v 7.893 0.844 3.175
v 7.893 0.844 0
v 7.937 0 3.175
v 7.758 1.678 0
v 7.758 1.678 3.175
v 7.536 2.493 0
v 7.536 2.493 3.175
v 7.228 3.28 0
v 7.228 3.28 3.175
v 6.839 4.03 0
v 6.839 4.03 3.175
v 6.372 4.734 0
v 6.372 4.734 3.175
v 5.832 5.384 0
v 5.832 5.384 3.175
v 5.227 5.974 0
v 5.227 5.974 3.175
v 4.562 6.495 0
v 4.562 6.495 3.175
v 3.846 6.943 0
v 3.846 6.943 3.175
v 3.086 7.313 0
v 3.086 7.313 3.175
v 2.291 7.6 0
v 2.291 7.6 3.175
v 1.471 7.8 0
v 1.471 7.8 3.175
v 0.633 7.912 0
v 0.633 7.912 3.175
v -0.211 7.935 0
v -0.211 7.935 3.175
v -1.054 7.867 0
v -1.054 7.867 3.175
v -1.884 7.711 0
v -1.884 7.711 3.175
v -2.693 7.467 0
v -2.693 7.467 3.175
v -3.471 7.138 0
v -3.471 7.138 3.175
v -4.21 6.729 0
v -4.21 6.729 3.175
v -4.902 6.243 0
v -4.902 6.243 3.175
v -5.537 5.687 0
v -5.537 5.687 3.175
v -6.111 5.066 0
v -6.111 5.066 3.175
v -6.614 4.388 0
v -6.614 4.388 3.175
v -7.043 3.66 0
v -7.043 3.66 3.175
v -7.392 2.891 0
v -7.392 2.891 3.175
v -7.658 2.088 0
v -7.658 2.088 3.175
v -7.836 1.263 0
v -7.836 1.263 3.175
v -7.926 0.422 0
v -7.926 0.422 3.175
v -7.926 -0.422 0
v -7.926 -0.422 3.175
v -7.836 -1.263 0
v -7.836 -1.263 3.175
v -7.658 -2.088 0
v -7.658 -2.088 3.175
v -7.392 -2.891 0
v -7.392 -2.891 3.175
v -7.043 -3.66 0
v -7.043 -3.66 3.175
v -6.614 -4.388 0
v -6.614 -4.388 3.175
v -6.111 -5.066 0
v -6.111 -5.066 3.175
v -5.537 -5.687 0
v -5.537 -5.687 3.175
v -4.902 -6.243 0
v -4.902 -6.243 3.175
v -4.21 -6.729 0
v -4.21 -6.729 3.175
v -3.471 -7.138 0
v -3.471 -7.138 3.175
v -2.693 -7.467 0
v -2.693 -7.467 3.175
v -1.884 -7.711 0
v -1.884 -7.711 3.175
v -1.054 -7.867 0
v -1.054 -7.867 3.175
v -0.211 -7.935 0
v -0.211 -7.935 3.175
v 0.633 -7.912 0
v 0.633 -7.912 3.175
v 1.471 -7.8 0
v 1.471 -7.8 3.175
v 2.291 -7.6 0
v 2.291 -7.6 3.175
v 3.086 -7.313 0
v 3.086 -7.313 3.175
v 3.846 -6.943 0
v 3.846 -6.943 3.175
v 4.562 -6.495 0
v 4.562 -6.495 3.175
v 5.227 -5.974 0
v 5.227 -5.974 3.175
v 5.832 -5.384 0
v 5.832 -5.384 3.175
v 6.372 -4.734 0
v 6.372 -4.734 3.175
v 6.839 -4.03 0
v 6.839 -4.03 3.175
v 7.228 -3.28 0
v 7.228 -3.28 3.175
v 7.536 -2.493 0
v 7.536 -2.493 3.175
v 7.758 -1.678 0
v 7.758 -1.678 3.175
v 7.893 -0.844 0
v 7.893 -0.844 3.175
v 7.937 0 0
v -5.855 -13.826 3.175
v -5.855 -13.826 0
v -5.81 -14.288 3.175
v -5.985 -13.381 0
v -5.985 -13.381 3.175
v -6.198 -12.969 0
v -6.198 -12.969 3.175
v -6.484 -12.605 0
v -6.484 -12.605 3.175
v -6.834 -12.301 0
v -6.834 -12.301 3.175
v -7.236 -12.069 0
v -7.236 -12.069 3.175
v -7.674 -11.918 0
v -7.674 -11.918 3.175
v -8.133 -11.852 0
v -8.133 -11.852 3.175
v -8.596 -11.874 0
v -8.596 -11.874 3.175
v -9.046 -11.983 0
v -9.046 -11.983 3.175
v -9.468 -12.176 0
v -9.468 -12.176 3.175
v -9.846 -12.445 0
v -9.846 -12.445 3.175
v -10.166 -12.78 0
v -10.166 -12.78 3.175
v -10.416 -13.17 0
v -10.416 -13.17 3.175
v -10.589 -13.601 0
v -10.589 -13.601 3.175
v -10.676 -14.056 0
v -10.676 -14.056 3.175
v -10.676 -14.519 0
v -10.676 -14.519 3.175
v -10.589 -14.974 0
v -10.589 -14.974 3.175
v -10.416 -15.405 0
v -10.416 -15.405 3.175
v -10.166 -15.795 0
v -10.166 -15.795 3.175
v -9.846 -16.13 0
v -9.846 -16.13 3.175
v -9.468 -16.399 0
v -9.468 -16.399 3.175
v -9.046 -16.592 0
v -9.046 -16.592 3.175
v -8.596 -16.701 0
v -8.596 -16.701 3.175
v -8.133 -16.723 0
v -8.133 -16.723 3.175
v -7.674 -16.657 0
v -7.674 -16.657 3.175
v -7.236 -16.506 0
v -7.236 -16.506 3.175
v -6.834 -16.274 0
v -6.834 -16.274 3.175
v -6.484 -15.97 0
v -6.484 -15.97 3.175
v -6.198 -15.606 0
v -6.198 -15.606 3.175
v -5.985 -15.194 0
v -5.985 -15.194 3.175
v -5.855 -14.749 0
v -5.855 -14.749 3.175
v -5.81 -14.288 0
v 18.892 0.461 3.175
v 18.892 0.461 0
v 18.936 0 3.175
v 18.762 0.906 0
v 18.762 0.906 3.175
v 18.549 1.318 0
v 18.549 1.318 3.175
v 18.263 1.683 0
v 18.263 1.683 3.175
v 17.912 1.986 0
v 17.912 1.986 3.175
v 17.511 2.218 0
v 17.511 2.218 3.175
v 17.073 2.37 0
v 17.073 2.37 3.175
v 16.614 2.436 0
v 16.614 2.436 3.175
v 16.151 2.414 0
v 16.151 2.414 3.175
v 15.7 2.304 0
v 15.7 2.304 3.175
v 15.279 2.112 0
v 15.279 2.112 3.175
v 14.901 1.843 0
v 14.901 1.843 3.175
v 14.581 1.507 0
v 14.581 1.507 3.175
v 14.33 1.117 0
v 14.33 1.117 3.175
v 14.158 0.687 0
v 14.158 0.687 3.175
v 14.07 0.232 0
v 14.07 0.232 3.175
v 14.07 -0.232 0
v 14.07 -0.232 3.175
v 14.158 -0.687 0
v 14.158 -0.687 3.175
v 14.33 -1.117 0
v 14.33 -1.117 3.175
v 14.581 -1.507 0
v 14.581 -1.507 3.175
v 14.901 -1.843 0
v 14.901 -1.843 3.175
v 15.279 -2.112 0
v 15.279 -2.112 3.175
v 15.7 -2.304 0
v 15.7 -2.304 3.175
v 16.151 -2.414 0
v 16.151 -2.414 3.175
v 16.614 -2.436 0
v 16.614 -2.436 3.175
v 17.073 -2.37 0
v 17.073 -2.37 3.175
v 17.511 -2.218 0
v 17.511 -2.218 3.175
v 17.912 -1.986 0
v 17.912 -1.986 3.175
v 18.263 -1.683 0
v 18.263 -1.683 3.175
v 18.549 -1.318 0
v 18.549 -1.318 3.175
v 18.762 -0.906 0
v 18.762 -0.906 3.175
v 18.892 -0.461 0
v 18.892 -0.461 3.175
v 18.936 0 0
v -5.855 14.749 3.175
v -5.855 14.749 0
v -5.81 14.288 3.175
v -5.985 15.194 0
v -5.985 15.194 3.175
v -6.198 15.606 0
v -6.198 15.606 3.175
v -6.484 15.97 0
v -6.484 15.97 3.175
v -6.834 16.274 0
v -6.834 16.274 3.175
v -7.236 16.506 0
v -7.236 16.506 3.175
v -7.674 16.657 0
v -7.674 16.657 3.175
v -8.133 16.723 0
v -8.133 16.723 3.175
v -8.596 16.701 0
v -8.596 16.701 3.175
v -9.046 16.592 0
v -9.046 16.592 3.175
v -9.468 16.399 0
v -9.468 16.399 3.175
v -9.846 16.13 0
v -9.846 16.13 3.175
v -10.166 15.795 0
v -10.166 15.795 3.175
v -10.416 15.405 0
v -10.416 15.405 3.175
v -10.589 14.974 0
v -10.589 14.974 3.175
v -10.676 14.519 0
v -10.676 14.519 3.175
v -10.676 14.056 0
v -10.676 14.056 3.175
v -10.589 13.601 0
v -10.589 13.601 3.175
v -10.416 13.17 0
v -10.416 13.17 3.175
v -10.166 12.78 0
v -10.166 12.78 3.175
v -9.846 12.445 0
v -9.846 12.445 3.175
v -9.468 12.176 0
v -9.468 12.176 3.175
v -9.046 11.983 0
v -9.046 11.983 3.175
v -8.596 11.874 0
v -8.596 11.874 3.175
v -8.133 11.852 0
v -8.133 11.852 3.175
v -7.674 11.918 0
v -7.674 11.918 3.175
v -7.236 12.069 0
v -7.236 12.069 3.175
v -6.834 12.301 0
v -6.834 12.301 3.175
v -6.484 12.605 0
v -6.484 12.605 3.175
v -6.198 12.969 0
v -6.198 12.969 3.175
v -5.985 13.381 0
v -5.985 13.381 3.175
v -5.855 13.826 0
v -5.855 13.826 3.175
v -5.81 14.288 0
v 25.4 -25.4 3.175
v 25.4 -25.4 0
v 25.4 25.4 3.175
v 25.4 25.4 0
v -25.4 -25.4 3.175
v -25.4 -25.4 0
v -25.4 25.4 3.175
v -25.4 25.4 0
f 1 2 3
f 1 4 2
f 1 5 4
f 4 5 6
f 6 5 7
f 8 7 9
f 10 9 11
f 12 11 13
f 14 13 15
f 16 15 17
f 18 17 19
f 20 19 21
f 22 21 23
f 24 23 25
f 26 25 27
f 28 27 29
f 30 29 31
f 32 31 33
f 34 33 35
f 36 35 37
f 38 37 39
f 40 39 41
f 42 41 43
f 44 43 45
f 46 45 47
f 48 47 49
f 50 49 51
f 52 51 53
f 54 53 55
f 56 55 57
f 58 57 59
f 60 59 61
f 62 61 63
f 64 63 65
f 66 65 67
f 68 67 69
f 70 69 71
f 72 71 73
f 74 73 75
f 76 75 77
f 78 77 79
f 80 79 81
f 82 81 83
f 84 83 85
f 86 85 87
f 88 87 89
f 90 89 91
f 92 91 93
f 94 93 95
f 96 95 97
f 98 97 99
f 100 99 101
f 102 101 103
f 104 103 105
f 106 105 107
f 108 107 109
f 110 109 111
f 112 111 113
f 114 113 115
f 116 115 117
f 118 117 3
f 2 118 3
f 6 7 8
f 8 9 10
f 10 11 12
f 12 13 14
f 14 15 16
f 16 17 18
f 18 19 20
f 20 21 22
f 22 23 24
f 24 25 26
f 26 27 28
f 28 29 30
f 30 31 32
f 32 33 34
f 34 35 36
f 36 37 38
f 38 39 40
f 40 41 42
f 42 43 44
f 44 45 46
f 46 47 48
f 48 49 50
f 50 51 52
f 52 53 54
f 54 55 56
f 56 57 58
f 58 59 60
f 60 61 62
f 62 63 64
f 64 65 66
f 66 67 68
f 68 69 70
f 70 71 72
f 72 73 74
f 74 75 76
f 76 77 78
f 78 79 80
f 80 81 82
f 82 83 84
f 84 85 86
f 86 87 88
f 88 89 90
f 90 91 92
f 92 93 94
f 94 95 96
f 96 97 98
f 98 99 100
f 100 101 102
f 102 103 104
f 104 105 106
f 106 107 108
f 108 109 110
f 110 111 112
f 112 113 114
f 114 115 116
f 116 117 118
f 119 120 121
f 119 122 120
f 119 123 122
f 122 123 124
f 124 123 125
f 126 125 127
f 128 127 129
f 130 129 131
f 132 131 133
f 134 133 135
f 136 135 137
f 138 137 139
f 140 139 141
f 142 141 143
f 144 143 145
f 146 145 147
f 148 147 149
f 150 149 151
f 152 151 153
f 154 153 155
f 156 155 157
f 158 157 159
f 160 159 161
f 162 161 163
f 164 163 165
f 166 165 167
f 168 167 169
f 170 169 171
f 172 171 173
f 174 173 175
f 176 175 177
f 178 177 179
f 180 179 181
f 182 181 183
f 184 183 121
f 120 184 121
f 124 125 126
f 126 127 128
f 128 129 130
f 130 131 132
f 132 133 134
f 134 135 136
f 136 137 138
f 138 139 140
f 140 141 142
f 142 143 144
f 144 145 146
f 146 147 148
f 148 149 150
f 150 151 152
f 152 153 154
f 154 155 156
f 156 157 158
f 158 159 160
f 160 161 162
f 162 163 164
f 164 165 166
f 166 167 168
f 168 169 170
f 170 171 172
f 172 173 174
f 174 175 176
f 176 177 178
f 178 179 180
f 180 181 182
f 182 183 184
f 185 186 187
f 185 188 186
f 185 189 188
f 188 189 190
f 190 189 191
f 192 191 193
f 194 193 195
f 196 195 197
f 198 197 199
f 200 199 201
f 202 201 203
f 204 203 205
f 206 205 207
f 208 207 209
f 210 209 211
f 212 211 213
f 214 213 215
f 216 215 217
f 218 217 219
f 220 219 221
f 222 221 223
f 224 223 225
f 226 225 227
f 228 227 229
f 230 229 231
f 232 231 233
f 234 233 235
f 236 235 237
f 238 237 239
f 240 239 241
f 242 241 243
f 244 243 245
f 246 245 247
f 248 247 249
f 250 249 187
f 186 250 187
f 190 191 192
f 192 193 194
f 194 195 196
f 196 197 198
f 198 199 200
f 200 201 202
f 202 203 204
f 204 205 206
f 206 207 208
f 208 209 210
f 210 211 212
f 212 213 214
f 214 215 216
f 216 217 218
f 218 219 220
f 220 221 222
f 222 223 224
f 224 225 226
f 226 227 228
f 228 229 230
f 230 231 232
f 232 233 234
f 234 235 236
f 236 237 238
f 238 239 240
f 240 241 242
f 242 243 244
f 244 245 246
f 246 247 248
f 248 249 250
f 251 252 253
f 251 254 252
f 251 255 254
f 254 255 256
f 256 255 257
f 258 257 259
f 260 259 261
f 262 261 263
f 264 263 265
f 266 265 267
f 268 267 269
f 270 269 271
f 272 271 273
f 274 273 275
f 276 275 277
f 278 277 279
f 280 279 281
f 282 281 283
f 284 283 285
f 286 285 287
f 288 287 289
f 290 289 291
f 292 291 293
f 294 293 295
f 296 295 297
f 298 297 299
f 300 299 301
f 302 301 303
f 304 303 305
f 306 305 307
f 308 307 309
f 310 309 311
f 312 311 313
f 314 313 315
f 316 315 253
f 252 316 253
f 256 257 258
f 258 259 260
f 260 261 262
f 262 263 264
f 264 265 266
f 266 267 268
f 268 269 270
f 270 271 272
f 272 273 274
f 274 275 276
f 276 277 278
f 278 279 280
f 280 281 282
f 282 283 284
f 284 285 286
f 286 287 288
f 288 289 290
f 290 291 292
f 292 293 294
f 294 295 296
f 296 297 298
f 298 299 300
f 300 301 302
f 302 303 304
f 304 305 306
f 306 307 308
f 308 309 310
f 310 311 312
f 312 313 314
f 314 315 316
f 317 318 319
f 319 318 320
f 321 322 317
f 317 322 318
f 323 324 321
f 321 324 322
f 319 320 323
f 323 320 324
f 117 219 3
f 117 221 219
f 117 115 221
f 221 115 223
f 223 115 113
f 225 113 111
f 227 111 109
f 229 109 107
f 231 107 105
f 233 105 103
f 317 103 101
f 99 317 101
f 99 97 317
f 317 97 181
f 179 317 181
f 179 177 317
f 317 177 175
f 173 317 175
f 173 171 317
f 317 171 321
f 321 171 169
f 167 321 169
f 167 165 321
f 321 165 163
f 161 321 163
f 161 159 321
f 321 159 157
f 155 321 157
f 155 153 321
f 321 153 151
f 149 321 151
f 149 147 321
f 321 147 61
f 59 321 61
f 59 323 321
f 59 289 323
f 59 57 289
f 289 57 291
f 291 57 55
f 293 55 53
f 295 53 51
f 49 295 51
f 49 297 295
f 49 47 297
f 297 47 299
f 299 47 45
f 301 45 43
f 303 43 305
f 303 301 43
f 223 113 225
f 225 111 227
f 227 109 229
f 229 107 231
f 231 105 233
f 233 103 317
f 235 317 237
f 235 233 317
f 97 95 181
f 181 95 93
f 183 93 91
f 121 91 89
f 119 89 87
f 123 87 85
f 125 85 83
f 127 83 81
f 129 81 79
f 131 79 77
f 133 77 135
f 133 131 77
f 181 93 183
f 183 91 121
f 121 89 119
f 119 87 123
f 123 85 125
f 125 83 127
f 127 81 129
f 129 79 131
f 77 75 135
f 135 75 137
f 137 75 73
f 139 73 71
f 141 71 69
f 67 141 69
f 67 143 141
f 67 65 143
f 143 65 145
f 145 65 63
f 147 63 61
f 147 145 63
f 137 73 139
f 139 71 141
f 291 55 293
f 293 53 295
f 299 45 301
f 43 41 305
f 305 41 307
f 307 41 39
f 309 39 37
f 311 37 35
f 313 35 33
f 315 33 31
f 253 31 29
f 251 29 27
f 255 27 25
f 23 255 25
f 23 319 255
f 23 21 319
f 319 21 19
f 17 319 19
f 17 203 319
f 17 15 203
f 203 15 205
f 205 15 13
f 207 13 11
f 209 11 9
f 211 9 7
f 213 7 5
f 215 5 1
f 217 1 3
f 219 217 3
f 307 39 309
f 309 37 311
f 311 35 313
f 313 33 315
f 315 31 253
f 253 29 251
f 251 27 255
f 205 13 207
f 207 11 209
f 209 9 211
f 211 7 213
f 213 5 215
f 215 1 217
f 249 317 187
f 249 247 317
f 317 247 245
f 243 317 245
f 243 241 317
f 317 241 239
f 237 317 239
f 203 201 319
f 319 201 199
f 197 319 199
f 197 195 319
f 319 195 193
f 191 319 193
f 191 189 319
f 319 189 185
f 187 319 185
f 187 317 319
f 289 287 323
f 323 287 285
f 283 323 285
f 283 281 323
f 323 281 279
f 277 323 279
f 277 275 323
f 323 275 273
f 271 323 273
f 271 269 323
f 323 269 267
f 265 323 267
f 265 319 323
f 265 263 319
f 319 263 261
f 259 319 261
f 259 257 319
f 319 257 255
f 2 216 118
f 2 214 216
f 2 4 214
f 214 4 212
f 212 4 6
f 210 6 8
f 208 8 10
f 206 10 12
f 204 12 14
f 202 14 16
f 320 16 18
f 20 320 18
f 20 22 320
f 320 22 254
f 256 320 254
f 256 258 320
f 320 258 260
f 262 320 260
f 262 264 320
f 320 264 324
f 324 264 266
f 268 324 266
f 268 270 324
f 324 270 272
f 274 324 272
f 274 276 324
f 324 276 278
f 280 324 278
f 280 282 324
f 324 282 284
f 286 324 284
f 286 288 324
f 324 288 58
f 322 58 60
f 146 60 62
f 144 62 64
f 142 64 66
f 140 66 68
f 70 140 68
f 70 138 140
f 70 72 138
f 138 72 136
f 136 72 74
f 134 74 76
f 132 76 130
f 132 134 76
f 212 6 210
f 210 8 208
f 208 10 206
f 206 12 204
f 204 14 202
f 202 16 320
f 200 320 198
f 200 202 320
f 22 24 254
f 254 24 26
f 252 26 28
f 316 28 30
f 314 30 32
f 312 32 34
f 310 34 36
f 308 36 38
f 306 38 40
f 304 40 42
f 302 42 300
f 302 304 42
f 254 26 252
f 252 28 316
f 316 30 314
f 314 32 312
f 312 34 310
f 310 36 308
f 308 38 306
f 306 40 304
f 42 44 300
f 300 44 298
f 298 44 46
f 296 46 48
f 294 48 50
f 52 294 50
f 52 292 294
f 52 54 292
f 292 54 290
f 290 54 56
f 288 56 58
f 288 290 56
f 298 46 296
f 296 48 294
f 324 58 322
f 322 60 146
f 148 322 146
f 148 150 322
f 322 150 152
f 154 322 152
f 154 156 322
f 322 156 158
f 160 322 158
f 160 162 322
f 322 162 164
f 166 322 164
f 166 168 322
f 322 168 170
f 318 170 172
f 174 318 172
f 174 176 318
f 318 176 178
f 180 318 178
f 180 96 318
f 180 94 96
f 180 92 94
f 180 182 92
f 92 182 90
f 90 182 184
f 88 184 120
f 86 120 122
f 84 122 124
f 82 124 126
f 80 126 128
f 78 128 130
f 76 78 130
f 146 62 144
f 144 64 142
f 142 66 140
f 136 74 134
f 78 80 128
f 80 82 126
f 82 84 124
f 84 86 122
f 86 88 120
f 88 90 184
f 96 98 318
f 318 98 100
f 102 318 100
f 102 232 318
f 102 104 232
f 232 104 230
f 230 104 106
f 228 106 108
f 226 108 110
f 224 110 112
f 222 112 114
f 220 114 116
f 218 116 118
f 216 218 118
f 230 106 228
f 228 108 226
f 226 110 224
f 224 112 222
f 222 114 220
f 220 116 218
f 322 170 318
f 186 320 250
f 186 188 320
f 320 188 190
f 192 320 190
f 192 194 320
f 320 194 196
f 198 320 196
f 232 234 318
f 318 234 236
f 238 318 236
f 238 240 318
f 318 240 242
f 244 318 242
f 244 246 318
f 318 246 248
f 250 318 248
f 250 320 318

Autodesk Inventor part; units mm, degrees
ref_plane "YZ Plane" through (0, 0, 0) normal (1, 0, 0) x (0, 1, 0)
ref_plane "XZ Plane" through (0, 0, 0) normal (0, 1, 0) x (-1, 0, 0)
ref_plane "XY Plane" through (0, 0, 0) normal (0, 0, 1) x (1, 0, 0)
sketch "Sketch1" plane through (0, 0, 0) normal (0, 0, 1) x (1, 0, 0)
  circle A0 centre (0, 0) radius 7.9375
  line L0 (-25.4, 25.4) -> (25.4, 25.4)
  line L1 (25.4, 25.4) -> (25.4, -25.4)
  line L2 (25.4, -25.4) -> (-25.4, -25.4)
  line L3 (-25.4, -25.4) -> (-25.4, 25.4)
  line L4 (-25.4, 25.4) -> (0, 0) construction
  line L5 (0, 0) -> (25.4, 25.4) construction
  line L6 (8.2489, 14.2875) -> (16.4978, 0) construction
  line L7 (16.4978, 0) -> (8.2489, -14.2875) construction
  line L8 (8.2489, -14.2875) -> (-8.2489, -14.2875) construction
  line L9 (-8.2489, -14.2875) -> (-16.4978, 0) construction
  line L10 (-16.4978, 0) -> (-8.2489, 14.2875) construction
  line L11 (-8.2489, 14.2875) -> (8.2489, 14.2875) construction
  circle A1 centre (-8.2489, 14.2875) radius 2.4384
  circle A2 centre (16.4978, 0) radius 2.4384
  circle A3 centre (-8.2489, -14.2875) radius 2.4384
  line L12 (0, 0) -> (-25.4, -25.4) construction
  line L13 (0, 0) -> (25.4, -25.4) construction
  dimension "d0" = 50.8
  dimension "d1" = 28.575
  dimension "d2" = 15.875
  dimension "d3" = 4.8768
extrude "Extrusion1" add sketch "Sketch1" along normal blind 3.175
properties part number "BearingRetainerPlate" material "Aluminum-6061"
